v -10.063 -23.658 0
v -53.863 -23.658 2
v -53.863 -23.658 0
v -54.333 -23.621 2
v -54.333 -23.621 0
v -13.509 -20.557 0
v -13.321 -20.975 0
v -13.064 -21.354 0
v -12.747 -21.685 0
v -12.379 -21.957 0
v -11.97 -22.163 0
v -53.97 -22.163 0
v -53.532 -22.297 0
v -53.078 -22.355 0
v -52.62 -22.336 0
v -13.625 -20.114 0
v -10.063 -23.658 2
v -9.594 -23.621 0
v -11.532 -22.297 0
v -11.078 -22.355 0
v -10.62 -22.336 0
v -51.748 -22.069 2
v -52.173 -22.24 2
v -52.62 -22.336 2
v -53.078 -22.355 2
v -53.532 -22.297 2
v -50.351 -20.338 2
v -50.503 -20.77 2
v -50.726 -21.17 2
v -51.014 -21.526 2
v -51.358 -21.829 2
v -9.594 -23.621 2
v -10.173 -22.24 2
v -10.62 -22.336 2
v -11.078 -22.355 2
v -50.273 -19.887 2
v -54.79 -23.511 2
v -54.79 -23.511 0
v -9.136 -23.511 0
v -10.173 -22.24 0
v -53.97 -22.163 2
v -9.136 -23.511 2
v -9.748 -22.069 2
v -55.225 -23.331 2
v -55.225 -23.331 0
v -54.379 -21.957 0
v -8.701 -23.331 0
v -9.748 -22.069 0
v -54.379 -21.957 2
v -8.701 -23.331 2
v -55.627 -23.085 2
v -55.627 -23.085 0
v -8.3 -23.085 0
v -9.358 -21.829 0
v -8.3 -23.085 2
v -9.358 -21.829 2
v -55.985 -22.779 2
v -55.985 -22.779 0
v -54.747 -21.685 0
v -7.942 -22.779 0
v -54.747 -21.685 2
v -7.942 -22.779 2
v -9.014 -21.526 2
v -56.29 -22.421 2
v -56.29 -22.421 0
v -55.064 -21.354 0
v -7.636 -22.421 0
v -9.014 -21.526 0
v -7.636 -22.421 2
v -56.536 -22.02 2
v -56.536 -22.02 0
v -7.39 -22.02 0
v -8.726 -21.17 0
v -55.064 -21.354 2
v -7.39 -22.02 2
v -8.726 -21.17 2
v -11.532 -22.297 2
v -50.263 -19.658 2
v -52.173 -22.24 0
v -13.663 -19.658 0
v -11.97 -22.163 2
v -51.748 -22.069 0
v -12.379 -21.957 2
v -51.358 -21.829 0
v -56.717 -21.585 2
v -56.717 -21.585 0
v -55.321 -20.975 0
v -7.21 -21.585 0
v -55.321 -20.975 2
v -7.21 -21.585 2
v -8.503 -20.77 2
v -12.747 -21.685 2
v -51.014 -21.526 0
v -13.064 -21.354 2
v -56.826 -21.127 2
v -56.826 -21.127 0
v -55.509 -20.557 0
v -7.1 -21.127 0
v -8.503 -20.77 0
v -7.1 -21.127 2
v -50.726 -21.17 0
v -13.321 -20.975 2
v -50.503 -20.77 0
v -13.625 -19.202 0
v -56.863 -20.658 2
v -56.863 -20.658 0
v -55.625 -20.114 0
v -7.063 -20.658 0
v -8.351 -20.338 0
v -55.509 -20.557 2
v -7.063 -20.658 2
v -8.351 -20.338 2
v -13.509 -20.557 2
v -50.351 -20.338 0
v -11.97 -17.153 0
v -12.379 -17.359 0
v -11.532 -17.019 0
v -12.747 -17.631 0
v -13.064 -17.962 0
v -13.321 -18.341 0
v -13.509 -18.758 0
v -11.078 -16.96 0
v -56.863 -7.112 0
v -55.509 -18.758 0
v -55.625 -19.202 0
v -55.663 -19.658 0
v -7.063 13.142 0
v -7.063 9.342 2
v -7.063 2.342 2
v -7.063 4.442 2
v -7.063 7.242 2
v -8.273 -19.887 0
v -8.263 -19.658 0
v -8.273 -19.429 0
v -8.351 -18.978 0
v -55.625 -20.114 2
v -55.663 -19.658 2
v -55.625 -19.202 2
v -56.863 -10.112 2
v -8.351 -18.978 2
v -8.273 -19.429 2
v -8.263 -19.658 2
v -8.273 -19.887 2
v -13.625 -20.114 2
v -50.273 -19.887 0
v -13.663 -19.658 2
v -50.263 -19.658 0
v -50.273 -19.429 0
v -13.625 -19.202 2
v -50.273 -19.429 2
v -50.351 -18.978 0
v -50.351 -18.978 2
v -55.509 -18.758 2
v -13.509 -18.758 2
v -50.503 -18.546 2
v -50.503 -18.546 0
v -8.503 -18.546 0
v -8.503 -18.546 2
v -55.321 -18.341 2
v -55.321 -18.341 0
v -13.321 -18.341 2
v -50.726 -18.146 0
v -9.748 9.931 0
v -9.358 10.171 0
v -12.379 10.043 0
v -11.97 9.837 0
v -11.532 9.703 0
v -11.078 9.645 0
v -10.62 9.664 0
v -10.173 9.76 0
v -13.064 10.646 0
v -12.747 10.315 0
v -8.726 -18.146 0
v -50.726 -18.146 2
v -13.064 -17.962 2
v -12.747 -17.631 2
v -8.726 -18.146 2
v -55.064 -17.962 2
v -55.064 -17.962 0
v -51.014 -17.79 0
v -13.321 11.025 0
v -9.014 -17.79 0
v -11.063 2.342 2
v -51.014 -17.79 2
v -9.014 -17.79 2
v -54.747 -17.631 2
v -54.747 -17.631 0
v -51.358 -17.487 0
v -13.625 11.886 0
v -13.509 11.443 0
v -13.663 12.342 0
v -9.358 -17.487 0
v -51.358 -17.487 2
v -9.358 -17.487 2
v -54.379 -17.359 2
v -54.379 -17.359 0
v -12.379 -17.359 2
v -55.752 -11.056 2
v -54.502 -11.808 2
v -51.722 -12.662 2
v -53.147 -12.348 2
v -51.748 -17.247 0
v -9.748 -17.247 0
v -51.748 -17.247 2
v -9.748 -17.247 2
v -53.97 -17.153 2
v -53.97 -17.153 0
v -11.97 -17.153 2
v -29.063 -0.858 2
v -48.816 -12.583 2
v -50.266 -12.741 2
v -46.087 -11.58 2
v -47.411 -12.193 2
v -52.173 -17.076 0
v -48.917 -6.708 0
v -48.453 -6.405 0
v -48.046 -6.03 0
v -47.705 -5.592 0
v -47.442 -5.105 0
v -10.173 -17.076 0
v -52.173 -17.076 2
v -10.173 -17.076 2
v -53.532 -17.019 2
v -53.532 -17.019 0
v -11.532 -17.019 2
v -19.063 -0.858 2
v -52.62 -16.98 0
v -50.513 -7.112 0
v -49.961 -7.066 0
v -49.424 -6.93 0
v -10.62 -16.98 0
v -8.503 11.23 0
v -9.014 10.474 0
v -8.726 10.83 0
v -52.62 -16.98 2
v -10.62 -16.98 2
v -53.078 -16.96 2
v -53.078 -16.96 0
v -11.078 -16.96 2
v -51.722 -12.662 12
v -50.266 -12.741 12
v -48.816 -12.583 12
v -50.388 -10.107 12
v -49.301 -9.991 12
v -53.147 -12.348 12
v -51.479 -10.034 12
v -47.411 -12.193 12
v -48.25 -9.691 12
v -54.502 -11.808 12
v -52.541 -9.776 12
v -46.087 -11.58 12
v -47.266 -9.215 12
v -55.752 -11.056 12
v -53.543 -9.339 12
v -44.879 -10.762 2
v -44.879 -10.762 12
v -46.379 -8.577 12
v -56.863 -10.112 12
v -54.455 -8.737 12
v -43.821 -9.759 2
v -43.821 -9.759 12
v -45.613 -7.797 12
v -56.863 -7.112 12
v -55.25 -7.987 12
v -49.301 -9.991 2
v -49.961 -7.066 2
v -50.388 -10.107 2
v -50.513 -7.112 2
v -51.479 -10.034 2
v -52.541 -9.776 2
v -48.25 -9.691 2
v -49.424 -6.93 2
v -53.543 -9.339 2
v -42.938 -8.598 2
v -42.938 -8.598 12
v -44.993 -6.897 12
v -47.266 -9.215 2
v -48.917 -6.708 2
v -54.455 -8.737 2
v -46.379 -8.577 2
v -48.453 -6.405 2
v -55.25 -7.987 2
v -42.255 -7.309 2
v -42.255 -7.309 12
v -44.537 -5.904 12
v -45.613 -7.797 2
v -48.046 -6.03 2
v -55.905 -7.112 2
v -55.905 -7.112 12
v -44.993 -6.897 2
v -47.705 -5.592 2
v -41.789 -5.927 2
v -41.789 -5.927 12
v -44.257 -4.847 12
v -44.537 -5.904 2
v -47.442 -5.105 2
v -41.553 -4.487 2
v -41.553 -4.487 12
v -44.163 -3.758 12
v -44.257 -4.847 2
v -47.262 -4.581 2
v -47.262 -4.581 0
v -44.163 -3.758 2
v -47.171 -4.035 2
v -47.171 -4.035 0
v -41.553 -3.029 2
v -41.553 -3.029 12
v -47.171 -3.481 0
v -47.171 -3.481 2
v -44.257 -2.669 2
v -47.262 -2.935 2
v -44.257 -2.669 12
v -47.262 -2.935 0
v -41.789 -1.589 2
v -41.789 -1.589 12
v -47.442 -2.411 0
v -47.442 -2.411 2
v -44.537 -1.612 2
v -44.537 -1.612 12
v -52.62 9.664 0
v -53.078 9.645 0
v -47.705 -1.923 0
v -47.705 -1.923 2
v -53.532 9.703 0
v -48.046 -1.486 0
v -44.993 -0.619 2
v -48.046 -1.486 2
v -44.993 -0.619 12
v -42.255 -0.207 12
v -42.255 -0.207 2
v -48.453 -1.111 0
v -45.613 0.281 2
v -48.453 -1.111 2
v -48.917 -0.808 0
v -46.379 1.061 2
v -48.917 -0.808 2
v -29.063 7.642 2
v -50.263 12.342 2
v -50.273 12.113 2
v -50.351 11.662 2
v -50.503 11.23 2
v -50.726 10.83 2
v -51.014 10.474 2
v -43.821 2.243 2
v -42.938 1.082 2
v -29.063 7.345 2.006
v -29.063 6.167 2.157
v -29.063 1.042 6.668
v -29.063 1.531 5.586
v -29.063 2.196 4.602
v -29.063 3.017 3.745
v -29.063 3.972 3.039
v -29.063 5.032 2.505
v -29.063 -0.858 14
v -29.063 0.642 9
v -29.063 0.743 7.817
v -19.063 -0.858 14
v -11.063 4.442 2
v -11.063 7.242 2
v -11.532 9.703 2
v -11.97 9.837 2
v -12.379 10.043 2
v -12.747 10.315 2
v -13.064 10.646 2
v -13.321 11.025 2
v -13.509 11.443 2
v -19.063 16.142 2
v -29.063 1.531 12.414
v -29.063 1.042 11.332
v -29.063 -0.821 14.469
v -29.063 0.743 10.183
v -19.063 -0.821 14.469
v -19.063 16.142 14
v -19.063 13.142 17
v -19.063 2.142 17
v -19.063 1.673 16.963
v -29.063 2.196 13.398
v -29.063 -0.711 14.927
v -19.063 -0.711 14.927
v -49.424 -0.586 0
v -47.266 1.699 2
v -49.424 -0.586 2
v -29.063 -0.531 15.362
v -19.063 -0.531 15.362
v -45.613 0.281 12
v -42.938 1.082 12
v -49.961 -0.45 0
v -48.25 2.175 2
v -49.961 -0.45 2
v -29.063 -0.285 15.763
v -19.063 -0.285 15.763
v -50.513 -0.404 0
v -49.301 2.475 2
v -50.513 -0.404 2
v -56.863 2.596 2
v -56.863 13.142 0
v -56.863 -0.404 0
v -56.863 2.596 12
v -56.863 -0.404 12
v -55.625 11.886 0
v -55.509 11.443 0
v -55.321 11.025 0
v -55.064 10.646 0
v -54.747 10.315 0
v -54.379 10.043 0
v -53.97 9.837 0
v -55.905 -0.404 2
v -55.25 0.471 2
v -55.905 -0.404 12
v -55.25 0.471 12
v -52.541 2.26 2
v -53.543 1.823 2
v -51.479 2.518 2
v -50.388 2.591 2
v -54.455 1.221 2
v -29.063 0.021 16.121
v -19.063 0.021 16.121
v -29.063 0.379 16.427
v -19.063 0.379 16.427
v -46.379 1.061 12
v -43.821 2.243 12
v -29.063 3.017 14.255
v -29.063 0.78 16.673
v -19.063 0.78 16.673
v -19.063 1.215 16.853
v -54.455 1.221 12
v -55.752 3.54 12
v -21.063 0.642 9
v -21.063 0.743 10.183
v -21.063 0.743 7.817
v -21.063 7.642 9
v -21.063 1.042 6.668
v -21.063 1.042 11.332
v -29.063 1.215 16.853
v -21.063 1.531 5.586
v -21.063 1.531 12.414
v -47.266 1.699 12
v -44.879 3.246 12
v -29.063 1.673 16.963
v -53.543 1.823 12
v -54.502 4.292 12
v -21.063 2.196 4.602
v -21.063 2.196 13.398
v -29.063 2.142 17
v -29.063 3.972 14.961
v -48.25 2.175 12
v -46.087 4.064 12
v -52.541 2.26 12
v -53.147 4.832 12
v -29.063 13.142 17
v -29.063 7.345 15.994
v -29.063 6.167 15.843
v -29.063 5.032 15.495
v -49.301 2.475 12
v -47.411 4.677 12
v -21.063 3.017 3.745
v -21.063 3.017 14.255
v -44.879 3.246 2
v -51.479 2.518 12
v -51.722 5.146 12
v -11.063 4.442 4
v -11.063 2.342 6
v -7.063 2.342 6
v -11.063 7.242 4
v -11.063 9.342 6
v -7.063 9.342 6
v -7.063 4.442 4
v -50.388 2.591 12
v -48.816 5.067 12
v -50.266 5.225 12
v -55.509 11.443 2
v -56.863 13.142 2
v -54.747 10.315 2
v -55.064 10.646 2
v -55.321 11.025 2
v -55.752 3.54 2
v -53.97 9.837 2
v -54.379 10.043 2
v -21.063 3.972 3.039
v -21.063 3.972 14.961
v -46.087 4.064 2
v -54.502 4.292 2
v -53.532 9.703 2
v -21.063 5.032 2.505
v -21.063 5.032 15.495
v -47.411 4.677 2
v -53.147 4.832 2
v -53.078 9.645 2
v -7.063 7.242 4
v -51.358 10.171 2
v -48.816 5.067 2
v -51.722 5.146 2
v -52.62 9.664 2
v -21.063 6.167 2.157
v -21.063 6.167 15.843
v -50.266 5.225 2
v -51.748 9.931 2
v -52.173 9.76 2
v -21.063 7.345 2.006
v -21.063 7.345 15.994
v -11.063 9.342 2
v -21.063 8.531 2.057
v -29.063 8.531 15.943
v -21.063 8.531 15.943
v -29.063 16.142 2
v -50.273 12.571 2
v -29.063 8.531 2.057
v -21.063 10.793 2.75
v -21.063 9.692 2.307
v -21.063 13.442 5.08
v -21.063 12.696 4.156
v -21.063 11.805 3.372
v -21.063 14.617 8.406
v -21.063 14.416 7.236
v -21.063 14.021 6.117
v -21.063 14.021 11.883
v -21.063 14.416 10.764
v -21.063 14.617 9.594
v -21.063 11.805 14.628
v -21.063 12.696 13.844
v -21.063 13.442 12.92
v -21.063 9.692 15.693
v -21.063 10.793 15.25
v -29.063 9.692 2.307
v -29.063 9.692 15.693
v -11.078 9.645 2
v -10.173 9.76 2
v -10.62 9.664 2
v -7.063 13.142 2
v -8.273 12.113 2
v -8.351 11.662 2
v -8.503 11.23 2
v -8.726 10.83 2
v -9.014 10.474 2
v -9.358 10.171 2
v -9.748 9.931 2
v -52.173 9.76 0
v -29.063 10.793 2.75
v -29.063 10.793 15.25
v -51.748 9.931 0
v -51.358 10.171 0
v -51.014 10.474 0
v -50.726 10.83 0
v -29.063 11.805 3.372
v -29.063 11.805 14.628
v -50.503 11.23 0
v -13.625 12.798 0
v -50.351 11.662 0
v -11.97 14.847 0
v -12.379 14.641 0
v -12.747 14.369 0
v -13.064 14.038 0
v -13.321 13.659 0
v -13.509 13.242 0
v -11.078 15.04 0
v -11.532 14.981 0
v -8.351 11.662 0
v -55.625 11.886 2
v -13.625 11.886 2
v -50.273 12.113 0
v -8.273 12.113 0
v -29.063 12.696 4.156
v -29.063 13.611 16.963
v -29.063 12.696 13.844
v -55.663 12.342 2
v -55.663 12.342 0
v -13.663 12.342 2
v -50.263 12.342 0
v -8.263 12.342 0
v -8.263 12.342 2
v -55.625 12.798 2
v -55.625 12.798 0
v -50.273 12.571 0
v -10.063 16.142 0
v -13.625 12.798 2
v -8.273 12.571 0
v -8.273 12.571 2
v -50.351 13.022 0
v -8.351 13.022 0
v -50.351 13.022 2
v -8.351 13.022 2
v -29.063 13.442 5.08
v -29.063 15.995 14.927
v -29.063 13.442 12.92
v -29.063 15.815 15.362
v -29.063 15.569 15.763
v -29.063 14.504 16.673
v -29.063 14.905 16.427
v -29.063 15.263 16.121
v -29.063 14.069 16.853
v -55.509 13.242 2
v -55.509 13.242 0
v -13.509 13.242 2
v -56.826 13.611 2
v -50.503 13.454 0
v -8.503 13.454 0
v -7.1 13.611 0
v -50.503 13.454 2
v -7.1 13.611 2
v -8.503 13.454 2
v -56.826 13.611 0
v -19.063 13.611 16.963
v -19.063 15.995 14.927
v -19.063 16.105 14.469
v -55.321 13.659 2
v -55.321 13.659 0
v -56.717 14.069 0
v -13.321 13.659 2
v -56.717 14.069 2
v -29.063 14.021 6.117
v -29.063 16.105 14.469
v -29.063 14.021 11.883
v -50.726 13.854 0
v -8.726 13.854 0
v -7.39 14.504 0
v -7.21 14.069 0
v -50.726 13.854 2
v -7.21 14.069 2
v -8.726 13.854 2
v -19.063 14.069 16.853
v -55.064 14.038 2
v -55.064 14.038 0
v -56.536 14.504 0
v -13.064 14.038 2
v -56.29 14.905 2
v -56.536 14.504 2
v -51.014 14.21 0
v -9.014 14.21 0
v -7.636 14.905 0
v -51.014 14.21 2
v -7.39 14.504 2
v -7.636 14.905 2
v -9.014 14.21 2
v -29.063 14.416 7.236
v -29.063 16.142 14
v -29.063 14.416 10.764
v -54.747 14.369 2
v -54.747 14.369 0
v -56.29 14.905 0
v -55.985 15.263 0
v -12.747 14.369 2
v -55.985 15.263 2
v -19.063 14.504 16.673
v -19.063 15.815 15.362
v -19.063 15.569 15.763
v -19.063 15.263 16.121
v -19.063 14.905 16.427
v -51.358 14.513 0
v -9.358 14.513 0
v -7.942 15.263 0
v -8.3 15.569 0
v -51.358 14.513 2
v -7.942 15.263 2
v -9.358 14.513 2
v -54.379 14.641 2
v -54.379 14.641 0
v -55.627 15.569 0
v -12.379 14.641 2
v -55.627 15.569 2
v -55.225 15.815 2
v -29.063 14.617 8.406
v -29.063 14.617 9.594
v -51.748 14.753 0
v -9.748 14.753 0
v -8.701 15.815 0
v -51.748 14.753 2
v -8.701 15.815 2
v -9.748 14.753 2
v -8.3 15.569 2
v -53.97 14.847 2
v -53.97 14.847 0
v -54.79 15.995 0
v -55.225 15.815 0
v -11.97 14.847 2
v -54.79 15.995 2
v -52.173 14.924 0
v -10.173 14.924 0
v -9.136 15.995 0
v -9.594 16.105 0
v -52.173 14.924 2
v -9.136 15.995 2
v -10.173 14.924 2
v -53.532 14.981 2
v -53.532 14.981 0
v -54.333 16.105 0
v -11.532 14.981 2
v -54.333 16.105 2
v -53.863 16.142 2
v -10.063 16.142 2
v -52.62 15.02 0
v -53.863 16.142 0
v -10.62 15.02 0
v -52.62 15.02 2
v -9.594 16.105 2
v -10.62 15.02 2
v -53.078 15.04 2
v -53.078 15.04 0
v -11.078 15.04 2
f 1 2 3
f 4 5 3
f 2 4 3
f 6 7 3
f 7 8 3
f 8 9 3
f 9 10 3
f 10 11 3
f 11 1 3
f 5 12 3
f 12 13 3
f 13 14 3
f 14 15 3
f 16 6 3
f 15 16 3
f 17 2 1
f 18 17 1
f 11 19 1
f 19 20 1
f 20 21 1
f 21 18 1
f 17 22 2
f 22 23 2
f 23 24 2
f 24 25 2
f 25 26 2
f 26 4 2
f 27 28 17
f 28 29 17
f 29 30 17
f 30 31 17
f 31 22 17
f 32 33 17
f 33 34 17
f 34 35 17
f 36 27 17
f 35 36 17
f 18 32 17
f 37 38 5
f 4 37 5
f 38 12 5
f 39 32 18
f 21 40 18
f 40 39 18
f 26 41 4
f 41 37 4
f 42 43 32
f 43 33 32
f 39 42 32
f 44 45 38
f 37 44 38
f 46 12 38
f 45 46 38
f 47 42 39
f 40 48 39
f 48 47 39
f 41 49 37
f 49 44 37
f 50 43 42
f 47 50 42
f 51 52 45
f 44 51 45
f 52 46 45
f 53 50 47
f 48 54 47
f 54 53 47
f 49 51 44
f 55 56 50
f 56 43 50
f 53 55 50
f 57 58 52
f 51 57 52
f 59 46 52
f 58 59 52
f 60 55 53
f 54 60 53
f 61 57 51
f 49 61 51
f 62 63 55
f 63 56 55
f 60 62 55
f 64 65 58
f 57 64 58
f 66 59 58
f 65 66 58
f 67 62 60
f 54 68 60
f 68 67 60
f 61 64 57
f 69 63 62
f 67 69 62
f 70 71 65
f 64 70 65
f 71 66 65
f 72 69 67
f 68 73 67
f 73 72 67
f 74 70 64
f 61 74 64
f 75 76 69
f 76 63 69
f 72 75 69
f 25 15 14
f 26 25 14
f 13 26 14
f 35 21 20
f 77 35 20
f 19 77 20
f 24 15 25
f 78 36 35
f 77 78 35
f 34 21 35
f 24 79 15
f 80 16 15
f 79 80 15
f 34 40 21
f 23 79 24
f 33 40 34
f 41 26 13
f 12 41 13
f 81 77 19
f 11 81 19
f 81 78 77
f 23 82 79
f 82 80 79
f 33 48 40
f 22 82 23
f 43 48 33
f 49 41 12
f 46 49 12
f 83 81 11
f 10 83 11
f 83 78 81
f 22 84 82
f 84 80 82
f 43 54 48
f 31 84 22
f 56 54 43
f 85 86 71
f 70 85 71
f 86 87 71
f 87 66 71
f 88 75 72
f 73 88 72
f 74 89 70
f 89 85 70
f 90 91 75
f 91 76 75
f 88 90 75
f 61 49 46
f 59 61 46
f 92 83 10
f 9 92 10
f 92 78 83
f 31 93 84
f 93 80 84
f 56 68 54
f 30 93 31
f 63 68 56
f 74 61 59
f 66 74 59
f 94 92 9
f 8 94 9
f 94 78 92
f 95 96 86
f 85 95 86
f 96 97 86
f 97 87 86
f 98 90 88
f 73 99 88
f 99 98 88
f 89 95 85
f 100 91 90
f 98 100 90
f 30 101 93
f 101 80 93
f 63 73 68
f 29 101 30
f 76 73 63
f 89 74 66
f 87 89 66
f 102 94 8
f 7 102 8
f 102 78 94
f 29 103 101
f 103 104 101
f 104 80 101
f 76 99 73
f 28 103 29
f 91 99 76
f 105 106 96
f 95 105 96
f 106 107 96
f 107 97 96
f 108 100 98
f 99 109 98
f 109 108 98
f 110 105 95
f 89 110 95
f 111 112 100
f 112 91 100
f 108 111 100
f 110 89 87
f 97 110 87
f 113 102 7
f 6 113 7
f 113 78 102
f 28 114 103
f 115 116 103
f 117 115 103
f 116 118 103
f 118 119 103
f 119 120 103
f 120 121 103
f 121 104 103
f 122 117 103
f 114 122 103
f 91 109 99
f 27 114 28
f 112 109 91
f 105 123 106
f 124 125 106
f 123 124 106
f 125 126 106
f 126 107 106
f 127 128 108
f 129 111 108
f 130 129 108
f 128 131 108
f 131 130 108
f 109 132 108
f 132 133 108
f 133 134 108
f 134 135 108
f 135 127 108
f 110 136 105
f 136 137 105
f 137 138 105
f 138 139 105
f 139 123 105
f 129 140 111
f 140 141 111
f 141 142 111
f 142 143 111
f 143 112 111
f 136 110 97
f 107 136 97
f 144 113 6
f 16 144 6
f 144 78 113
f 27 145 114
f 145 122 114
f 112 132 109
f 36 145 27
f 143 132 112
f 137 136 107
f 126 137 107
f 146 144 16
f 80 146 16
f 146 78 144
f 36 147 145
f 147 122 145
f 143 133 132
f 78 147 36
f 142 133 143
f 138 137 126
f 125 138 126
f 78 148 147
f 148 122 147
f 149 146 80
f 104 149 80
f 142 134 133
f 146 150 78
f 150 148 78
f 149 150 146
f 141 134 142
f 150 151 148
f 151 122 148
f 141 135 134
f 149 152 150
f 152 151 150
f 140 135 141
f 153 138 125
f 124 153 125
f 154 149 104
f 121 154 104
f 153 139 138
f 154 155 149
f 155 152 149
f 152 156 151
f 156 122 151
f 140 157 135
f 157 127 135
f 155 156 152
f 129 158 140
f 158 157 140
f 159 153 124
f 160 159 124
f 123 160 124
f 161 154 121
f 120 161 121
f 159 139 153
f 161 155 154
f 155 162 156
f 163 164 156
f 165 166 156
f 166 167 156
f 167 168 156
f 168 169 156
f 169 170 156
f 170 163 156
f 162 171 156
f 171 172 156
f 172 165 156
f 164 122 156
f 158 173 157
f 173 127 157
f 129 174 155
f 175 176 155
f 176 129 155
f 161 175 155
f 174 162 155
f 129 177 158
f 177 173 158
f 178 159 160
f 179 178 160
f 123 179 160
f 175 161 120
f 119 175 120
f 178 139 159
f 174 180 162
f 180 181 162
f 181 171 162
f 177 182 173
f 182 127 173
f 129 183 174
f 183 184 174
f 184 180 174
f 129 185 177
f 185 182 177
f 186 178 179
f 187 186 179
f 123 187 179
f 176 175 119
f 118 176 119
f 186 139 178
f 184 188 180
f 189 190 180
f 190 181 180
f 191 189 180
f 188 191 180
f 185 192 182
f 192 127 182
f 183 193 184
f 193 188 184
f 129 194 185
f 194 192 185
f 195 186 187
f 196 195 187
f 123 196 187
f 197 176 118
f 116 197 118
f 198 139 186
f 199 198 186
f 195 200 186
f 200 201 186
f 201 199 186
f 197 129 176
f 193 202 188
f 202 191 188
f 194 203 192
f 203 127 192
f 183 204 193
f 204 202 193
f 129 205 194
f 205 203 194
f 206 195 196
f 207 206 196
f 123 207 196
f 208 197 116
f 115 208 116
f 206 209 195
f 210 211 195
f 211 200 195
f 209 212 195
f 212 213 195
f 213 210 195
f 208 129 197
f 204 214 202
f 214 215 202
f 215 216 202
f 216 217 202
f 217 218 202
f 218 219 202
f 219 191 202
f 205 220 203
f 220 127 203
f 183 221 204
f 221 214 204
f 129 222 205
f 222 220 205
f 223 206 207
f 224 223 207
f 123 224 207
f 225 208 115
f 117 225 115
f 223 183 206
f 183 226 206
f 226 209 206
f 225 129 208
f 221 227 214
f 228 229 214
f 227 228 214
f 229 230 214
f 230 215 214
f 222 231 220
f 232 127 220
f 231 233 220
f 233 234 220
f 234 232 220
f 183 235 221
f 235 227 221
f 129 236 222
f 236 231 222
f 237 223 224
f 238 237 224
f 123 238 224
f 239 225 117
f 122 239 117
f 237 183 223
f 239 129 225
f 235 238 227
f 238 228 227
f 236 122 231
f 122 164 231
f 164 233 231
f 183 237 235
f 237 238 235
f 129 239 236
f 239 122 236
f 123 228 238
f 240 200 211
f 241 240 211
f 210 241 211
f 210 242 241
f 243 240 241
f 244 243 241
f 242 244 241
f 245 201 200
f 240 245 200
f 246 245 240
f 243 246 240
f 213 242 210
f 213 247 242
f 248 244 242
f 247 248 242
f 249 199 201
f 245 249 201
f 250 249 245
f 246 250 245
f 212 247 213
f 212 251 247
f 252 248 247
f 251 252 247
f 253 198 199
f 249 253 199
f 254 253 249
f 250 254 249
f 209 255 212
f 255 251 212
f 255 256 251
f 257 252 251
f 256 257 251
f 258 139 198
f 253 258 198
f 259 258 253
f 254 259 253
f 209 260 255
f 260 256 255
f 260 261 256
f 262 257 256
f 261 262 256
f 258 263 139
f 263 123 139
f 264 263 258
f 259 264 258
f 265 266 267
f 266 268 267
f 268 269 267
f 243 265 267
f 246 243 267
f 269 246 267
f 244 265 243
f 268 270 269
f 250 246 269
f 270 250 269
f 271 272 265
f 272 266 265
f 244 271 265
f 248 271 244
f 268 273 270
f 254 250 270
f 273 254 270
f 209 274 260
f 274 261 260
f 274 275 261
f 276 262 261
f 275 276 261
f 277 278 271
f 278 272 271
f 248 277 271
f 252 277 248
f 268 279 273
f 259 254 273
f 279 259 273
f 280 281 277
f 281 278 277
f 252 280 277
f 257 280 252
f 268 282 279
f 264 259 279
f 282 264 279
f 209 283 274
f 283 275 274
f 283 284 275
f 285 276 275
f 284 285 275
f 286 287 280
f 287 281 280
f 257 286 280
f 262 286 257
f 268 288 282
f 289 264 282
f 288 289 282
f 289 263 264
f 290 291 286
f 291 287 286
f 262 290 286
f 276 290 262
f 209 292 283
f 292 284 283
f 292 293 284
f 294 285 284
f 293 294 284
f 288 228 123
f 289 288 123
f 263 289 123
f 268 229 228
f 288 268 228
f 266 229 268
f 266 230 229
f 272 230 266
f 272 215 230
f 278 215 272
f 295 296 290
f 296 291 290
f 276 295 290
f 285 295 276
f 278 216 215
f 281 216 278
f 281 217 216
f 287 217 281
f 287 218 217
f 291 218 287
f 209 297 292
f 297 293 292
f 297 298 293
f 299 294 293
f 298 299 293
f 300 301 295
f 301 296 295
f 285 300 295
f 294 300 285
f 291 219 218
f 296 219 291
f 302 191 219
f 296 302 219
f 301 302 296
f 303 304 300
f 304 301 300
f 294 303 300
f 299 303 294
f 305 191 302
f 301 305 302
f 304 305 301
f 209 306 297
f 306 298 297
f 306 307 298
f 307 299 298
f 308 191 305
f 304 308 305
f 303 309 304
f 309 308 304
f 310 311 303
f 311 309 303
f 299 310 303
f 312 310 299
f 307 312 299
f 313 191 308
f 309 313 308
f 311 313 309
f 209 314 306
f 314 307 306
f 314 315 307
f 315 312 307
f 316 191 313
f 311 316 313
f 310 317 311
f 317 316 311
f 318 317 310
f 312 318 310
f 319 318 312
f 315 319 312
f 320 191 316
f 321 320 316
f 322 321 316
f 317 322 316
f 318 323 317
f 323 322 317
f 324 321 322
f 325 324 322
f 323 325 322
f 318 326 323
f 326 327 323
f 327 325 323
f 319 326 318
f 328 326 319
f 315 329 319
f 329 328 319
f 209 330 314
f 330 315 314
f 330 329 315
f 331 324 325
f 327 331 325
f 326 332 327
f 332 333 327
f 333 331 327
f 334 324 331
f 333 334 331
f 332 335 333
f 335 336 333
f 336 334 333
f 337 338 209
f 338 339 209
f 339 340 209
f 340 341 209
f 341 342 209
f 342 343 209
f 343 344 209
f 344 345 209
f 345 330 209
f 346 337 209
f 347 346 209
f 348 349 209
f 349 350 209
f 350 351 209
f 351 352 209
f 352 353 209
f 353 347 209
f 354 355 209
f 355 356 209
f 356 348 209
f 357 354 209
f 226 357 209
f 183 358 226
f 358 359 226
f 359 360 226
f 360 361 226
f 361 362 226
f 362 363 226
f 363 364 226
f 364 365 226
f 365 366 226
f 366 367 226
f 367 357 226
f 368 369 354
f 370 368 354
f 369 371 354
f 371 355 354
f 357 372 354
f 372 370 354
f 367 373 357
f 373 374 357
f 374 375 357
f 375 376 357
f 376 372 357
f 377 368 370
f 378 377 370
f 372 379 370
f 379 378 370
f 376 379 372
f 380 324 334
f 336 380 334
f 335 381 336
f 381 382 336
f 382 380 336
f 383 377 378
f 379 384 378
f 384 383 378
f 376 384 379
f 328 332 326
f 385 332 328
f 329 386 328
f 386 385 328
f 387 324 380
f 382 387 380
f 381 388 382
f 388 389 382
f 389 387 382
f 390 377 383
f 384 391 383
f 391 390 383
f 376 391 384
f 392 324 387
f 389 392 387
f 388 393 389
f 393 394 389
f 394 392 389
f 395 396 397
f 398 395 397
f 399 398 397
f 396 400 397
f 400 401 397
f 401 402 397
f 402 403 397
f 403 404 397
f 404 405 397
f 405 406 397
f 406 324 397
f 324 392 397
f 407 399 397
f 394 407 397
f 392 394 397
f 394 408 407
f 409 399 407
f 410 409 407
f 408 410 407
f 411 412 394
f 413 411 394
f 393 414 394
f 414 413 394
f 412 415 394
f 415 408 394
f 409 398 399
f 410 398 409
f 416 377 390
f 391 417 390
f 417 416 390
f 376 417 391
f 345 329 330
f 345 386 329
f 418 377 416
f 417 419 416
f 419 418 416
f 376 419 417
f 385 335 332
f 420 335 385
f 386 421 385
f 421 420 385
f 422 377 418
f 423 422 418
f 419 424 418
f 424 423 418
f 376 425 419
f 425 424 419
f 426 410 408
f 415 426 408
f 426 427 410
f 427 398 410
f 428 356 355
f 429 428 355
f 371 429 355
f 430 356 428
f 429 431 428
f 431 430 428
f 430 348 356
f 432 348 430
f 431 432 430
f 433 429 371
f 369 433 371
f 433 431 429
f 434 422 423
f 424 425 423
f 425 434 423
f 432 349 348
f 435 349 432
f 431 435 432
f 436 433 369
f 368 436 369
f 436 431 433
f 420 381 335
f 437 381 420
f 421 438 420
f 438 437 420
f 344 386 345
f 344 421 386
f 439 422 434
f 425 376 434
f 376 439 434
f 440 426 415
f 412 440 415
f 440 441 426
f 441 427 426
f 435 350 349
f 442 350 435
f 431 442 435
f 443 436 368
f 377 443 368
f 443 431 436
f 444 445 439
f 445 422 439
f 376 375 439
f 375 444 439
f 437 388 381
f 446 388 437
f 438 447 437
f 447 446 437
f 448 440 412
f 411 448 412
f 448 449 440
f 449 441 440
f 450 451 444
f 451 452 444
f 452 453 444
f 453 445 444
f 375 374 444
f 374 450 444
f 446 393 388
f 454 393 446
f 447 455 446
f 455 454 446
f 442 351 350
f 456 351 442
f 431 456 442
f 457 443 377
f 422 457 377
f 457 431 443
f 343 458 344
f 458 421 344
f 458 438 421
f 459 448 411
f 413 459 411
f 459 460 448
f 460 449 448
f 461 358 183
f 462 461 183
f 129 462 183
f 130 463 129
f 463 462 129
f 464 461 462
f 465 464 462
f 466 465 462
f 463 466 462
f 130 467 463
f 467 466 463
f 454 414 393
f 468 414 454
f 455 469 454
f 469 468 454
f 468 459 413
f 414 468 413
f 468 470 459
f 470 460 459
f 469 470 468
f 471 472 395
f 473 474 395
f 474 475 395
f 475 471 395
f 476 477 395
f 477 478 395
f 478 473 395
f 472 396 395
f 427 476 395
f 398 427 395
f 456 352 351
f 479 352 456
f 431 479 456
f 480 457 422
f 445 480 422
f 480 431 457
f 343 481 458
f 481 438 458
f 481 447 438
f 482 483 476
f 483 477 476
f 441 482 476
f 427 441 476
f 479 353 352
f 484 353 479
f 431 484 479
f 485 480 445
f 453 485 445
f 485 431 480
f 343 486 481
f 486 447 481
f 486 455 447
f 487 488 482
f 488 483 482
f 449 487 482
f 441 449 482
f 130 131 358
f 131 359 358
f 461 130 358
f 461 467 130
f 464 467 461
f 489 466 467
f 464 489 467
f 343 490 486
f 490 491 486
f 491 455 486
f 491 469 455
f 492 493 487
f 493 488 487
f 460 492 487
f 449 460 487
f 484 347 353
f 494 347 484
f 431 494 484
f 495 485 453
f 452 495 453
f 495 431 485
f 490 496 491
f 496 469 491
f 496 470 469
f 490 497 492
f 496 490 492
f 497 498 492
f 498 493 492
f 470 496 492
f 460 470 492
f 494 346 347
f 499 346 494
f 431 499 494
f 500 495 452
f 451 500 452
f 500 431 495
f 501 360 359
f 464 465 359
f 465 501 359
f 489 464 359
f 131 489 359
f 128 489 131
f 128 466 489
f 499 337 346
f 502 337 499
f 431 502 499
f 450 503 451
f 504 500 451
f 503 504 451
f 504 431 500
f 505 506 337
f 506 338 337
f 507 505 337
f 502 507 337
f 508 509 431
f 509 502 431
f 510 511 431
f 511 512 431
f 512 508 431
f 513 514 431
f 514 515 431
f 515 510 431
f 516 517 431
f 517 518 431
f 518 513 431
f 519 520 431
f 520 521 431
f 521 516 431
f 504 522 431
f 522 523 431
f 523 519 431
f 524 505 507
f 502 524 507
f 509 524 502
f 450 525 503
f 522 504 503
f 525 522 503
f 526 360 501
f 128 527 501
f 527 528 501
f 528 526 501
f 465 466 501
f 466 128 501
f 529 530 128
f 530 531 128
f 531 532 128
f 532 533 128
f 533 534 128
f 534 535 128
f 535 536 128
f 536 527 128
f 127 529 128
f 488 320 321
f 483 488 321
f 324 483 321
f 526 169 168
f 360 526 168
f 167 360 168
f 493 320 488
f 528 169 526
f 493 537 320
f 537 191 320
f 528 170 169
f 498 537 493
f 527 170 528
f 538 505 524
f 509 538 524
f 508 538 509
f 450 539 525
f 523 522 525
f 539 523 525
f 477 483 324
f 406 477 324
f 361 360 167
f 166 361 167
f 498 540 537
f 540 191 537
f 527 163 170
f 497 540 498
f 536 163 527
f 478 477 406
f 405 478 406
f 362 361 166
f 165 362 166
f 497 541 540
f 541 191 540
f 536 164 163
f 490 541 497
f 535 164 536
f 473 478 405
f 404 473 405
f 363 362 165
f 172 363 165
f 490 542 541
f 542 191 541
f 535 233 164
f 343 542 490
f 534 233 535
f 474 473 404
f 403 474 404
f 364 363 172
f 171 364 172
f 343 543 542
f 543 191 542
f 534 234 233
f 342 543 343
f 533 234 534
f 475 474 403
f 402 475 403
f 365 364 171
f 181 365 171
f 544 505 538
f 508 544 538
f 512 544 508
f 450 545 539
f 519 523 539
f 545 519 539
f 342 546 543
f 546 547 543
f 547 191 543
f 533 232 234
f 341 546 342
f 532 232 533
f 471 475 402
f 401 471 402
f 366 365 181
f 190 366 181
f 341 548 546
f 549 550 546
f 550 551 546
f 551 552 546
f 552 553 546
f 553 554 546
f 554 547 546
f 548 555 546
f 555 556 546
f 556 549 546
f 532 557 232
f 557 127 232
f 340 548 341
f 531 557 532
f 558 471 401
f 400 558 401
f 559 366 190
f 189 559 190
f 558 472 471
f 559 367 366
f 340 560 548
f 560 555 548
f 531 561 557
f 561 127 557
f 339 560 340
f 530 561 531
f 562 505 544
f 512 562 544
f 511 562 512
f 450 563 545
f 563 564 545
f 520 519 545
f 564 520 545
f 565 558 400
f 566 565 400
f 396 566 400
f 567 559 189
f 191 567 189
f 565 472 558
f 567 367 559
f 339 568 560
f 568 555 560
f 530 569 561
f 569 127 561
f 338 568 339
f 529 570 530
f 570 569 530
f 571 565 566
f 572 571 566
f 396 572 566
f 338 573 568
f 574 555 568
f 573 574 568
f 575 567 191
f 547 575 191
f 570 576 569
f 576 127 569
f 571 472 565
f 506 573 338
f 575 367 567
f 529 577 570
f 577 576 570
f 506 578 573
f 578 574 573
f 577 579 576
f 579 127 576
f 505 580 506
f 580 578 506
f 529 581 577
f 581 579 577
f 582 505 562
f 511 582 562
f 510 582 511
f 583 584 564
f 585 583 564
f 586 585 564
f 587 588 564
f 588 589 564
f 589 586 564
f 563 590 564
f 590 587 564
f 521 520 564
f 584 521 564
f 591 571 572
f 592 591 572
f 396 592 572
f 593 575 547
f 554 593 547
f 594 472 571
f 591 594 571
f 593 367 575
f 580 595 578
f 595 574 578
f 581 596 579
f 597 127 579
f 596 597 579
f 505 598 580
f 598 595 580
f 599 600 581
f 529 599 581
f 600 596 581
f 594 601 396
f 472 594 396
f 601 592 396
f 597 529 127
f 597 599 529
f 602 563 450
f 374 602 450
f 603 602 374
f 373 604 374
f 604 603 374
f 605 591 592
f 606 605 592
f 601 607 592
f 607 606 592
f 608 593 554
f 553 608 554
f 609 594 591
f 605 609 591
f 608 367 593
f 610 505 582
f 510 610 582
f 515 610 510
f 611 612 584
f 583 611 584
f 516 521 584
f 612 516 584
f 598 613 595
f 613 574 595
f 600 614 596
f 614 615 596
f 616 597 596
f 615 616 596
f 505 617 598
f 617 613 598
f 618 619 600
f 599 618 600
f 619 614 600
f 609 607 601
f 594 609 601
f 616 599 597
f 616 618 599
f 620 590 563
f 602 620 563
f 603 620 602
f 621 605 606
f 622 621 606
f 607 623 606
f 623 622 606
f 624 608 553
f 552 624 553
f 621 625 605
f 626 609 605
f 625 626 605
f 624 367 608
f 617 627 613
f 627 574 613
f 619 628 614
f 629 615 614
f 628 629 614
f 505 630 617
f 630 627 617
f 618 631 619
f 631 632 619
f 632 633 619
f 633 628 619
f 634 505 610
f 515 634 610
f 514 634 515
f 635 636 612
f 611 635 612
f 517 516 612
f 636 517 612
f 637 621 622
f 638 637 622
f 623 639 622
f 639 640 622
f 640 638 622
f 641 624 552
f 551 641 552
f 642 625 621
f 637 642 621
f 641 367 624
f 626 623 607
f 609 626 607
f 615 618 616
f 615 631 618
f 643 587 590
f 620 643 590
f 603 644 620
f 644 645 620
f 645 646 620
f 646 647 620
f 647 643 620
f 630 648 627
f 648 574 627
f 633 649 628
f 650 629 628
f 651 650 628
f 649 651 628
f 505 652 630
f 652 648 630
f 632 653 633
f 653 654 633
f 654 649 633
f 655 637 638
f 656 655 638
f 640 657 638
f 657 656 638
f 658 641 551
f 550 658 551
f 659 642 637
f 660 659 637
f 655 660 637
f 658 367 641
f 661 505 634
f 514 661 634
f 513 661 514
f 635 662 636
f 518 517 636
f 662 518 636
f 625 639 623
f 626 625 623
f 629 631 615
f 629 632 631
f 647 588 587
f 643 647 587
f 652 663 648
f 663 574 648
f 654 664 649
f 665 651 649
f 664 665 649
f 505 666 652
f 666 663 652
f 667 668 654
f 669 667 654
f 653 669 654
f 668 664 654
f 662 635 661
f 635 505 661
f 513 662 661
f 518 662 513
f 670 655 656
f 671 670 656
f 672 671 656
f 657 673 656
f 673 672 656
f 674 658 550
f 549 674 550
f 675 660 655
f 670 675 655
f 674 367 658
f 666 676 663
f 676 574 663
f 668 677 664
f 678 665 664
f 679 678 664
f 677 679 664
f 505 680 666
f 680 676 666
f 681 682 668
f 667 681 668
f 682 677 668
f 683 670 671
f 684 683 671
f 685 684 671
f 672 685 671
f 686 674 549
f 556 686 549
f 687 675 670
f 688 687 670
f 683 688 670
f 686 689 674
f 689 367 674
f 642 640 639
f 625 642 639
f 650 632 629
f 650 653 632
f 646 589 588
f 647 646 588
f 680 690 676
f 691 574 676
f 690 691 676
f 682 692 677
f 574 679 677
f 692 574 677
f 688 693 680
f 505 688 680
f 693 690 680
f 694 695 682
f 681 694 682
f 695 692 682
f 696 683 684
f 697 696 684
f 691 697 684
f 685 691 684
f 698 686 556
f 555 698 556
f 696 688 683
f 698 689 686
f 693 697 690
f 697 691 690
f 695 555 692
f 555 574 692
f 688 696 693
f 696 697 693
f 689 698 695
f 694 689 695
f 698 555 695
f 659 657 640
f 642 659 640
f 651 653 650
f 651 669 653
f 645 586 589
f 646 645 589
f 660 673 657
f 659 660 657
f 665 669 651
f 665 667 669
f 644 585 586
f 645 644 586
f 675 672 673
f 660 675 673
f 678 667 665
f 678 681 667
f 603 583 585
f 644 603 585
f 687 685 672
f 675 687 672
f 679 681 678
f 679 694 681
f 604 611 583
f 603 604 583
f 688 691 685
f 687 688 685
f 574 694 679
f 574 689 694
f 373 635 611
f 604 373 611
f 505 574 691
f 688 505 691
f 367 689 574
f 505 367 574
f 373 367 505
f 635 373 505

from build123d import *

# Parameters (mm, degrees)
CROQUIS1_W              = 49.8
CROQUIS1_H              = 39.8
CROQUIS1_R              = 2.7
SALIENTE_EXTRUIR1_DEPTH = 6
CORTAR_EXTRUIR1_DEPTH   = 4
REDONDEO1_R             = 3
SALIENTE_EXTRUIR3_DEPTH = 3
CROQUIS5_R              = 6.35
CORTAR_EXTRUIR2_DEPTH   = 3
SALIENTE_EXTRUIR4_DEPTH = 10
SALIENTE_EXTRUIR5_DEPTH = 2
CORTAR_EXTRUIR3_START   = -3
CORTAR_EXTRUIR3_DEPTH   = 3
CORTAR_EXTRUIR4_DEPTH   = 4
CROQUIS10_W             = 4
CROQUIS10_H             = 7
SALIENTE_EXTRUIR6_DEPTH = 4
CORTAR_EXTRUIR5_DEPTH   = 4
CROQUIS16_W             = 28.958796265
CROQUIS16_H             = 47.870649268
CORTAR_EXTRUIR6_DEPTH   = 2
CROQUIS17_W             = 5
CROQUIS17_H             = 16
CORTAR_EXTRUIR7_DEPTH   = 10
CORTAR_EXTRUIR8_DEPTH   = 2
SALIENTE_EXTRUIR7_DEPTH = 10
CROQUIS21_W             = 10
CROQUIS21_H             = 17
SALIENTE_EXTRUIR8_DEPTH = 15
CROQUIS22_R             = 7
CORTAR_EXTRUIR9_DEPTH   = 8
REDONDEO2_R             = 3


with BuildPart() as part:
    # Croquis1 → Saliente-Extruir1 (new body)
    with BuildSketch(Plane.XY):
        with Locations((-31.963412372, -3.757931034)):
            Rectangle(CROQUIS1_W, CROQUIS1_H)
        with Locations((-52.963412372, 12.342068966)):
            Circle(CROQUIS1_R, mode=Mode.SUBTRACT)
        with Locations((-10.963412372, 12.342068966)):
            Circle(CROQUIS1_R, mode=Mode.SUBTRACT)
        with Locations((-10.963412372, -19.657931034)):
            Circle(CROQUIS1_R, mode=Mode.SUBTRACT)
        with Locations((-52.963412372, -19.657931034)):
            Circle(CROQUIS1_R, mode=Mode.SUBTRACT)
    extrude(amount=SALIENTE_EXTRUIR1_DEPTH)

    # Croquis2 → Cortar-Extruir1 (cut)
    with BuildSketch(Plane.XY.offset(6)):
        with BuildLine():
            Line((-49.963412372, -16.757931034), (-13.963412372, -16.757931034))
            ThreePointArc((-13.963412372, -16.757931034), (-12.54919881, -16.172144597), (-11.963412372, -14.757931034))
            Line((-11.963412372, -14.757931034), (-11.963412372, 7.242068966))
            ThreePointArc((-11.963412372, 7.242068966), (-12.54919881, 8.656282528), (-13.963412372, 9.242068966))
            Line((-13.963412372, 9.242068966), (-49.963412372, 9.242068966))
            ThreePointArc((-49.963412372, 9.242068966), (-51.377625934, 8.656282528), (-51.963412372, 7.242068966))
            Line((-51.963412372, 7.242068966), (-51.963412372, -14.757931034))
            ThreePointArc((-51.963412372, -14.757931034), (-51.377625934, -16.172144597), (-49.963412372, -16.757931034))
        make_face()
    extrude(amount=-CORTAR_EXTRUIR1_DEPTH, mode=Mode.SUBTRACT)

    # Redondeo1
    redondeo1_edges = [part.edges().sort_by_distance(p)[0] for p in [
        (-56.863412372, 16.142068966, 3),
        (-7.063412372, 16.142068966, 3),
        (-7.063412372, -23.657931034, 3),
        (-56.863412372, -23.657931034, 3),
    ]]
    fillet(redondeo1_edges, radius=REDONDEO1_R)

    # Croquis4 → Saliente-Extruir3 (add)
    with BuildSketch(Plane(origin=(0, 0, 0), x_dir=(-1, 0, 0), z_dir=(0, 0, -1))):
        with BuildLine():
            Line((56.863412372, 4.242068966), (61.863412372, 4.242068966))
            Line((61.863412372, 4.242068966), (61.863412372, -0.257931034))
            Line((61.863412372, -0.257931034), (57.863412372, -0.257931034))
            ThreePointArc((57.863412372, -0.257931034), (57.358118834, -0.294597605), (56.863412372, -0.403829068))
            Line((56.863412372, -0.403829068), (56.863412372, 4.242068966))
        make_face()
        with BuildLine():
            Line((61.863412372, -11.757931034), (56.863412372, -11.757931034))
            Line((56.863412372, -11.757931034), (56.863412372, -7.112033001))
            ThreePointArc((56.863412372, -7.112033001), (57.358118834, -7.221264464), (57.863412372, -7.257931034))
            Line((57.863412372, -7.257931034), (61.863412372, -7.257931034))
            Line((61.863412372, -7.257931034), (61.863412372, -11.757931034))
        make_face()
    extrude(amount=-SALIENTE_EXTRUIR3_DEPTH)

    # Croquis5 → Cortar-Extruir2 (cut)
    with BuildSketch(Plane.XY.offset(3)):
        with Locations((-57.863412372, -3.757931034)):
            Circle(CROQUIS5_R)
    extrude(amount=CORTAR_EXTRUIR2_DEPTH, mode=Mode.SUBTRACT)

    # Croquis6 → Saliente-Extruir4 (add)
    with BuildSketch(Plane.XY.offset(3)):
        with BuildLine():
            Line((-61.863412372, 4.242068966), (-51.963412372, 4.242068966))
            Line((-51.963412372, 4.242068966), (-48.963412372, 4.242068966))
            Line((-48.963412372, 4.242068966), (-48.963412372, -11.757931034))
            Line((-48.963412372, -11.757931034), (-51.963412372, -11.757931034))
            Line((-51.963412372, -11.757931034), (-61.863412372, -11.757931034))
            Line((-61.863412372, -11.757931034), (-61.863412372, -8.689715701))
            ThreePointArc((-61.863412372, -8.689715701), (-51.513412372, -3.757931034), (-61.863412372, 1.173853632))
            Line((-61.863412372, 1.173853632), (-61.863412372, 4.242068966))
        make_face()
    extrude(amount=SALIENTE_EXTRUIR4_DEPTH)

    # Croquis7 → Saliente-Extruir5 (add)
    with BuildSketch(Plane.XY.offset(2)):
        Polygon((-51.963412372, -3.757931034), (-51.963412372, 4.242068966), (-48.963412372, 4.242068966), (-48.963412372, -11.757931034), (-51.963412372, -11.757931034), align=None)
    extrude(amount=SALIENTE_EXTRUIR5_DEPTH)

    # Croquis8 → Cortar-Extruir3 (cut)
    with BuildSketch(Plane.XY.offset(3).offset(CORTAR_EXTRUIR3_START)):
        with BuildLine():
            Line((-56.863412372, -0.403829068), (-56.863412372, -7.112033001))
            ThreePointArc((-56.863412372, -7.112033001), (-53.509310406, -3.757931034), (-56.863412372, -0.403829068))
        make_face()
    extrude(amount=CORTAR_EXTRUIR3_DEPTH, mode=Mode.SUBTRACT)

    # Croquis9 → Cortar-Extruir4 (cut)
    with BuildSketch(Plane.XY.offset(6)):
        Polygon((-56.863412372, -11.757931034), (-56.863412372, -27.492217147), (-1.817084798, -27.492217147), (-1.817084798, 22.861833321), (-56.863412372, 22.861833321), (-56.863412372, 4.242068966), (-47.172737702, 4.242068966), (-47.172737702, -11.757931034), align=None)
    extrude(amount=-CORTAR_EXTRUIR4_DEPTH, mode=Mode.SUBTRACT)

    # Croquis10 → Saliente-Extruir6 (add)
    with BuildSketch(Plane.XY.offset(2)):
        with Locations((-9.063412372, 5.842068966)):
            Rectangle(CROQUIS10_W, CROQUIS10_H)
    extrude(amount=SALIENTE_EXTRUIR6_DEPTH)

    # Croquis11 → Cortar-Extruir5 (cut)
    with BuildSketch(Plane(origin=(-7.063412372, 0, 0), x_dir=(0, 0, -1), z_dir=(1, 0, 0))):
        Polygon((-2, 5.842068966), (-2, 7.242068966), (-4, 7.242068966), (-4, 4.442068966), (-2, 4.442068966), align=None)
    extrude(amount=-CORTAR_EXTRUIR5_DEPTH, mode=Mode.SUBTRACT)

    # Croquis16 → Cortar-Extruir6 (cut)
    with BuildSketch(Plane.XY.offset(2)):
        with Locations((-49.718694927, -6.990346687)):
            Rectangle(CROQUIS16_W, CROQUIS16_H)
    extrude(amount=CORTAR_EXTRUIR6_DEPTH, mode=Mode.SUBTRACT)


with BuildPart() as cortar_extruir6_kept_piece:
    # of the separate pieces the step leaves, the one the design keeps (cortar_extruir6_pieces_kept)
    add(part.part.solids().sort_by_distance((-53.863412372, 16.142068966, 0))[0])

    # Croquis17 → Cortar-Extruir7 (cut)
    with BuildSketch(Plane.XY.offset(2)):
        with Locations((-59.363412372, -3.757931034)):
            Rectangle(CROQUIS17_W, CROQUIS17_H)
    extrude(amount=-CORTAR_EXTRUIR7_DEPTH, mode=Mode.SUBTRACT)

    # Croquis18 → Cortar-Extruir8 (cut)
    with BuildSketch(Plane.XY.offset(2)):
        with BuildLine():
            Line((-56.863412372, -0.403829068), (-50.513412372, -0.403829068))
            ThreePointArc((-50.513412372, -0.403829068), (-47.159310406, -3.757931034), (-50.513412372, -7.112033001))
            Line((-50.513412372, -7.112033001), (-56.863412372, -7.112033001))
            Line((-56.863412372, -7.112033001), (-56.863412372, -0.403829068))
        make_face()
    extrude(amount=-CORTAR_EXTRUIR8_DEPTH, mode=Mode.SUBTRACT)

    # Croquis19 → Saliente-Extruir7 (add)
    with BuildSketch(Plane.XY.offset(2)):
        with BuildLine():
            Line((-56.863412372, -0.403829068), (-55.905304433, -0.403829068))
            ThreePointArc((-55.905304433, -0.403829068), (-48.769281441, 2.347845517), (-44.163412372, -3.757931034))
            ThreePointArc((-44.163412372, -3.757931034), (-48.769281441, -9.863707586), (-55.905304433, -7.112033001))
            Line((-55.905304433, -7.112033001), (-56.863412372, -7.112033001))
            Line((-56.863412372, -7.112033001), (-56.863412372, -10.112033001))
            ThreePointArc((-56.863412372, -10.112033001), (-41.523253228, -3.757931034), (-56.863412372, 2.596170932))
            Line((-56.863412372, 2.596170932), (-56.863412372, -0.403829068))
        make_face()
    extrude(amount=SALIENTE_EXTRUIR7_DEPTH)

    # Croquis21 → Saliente-Extruir8 (add)
    with BuildSketch(Plane.XY.offset(2)):
        with Locations((-24.063412372, 7.642068966)):
            Rectangle(CROQUIS21_W, CROQUIS21_H)
    extrude(amount=SALIENTE_EXTRUIR8_DEPTH)

    # Croquis22 → Cortar-Extruir9 (cut)
    with BuildSketch(Plane.ZY.offset(29.063412372)):
        with Locations(Location((9, 7.642068966, 0), (0, 0, 270))):
            Circle(CROQUIS22_R)
    extrude(amount=-CORTAR_EXTRUIR9_DEPTH, mode=Mode.SUBTRACT)

    # Redondeo2
    redondeo2_edges = [cortar_extruir6_kept_piece.edges().sort_by_distance(p)[0] for p in [
        (-24.063412372, 16.142068966, 17),
        (-24.063412372, -0.857931034, 17),
    ]]
    fillet(redondeo2_edges, radius=REDONDEO2_R)


solid = cortar_extruir6_kept_piece.part
